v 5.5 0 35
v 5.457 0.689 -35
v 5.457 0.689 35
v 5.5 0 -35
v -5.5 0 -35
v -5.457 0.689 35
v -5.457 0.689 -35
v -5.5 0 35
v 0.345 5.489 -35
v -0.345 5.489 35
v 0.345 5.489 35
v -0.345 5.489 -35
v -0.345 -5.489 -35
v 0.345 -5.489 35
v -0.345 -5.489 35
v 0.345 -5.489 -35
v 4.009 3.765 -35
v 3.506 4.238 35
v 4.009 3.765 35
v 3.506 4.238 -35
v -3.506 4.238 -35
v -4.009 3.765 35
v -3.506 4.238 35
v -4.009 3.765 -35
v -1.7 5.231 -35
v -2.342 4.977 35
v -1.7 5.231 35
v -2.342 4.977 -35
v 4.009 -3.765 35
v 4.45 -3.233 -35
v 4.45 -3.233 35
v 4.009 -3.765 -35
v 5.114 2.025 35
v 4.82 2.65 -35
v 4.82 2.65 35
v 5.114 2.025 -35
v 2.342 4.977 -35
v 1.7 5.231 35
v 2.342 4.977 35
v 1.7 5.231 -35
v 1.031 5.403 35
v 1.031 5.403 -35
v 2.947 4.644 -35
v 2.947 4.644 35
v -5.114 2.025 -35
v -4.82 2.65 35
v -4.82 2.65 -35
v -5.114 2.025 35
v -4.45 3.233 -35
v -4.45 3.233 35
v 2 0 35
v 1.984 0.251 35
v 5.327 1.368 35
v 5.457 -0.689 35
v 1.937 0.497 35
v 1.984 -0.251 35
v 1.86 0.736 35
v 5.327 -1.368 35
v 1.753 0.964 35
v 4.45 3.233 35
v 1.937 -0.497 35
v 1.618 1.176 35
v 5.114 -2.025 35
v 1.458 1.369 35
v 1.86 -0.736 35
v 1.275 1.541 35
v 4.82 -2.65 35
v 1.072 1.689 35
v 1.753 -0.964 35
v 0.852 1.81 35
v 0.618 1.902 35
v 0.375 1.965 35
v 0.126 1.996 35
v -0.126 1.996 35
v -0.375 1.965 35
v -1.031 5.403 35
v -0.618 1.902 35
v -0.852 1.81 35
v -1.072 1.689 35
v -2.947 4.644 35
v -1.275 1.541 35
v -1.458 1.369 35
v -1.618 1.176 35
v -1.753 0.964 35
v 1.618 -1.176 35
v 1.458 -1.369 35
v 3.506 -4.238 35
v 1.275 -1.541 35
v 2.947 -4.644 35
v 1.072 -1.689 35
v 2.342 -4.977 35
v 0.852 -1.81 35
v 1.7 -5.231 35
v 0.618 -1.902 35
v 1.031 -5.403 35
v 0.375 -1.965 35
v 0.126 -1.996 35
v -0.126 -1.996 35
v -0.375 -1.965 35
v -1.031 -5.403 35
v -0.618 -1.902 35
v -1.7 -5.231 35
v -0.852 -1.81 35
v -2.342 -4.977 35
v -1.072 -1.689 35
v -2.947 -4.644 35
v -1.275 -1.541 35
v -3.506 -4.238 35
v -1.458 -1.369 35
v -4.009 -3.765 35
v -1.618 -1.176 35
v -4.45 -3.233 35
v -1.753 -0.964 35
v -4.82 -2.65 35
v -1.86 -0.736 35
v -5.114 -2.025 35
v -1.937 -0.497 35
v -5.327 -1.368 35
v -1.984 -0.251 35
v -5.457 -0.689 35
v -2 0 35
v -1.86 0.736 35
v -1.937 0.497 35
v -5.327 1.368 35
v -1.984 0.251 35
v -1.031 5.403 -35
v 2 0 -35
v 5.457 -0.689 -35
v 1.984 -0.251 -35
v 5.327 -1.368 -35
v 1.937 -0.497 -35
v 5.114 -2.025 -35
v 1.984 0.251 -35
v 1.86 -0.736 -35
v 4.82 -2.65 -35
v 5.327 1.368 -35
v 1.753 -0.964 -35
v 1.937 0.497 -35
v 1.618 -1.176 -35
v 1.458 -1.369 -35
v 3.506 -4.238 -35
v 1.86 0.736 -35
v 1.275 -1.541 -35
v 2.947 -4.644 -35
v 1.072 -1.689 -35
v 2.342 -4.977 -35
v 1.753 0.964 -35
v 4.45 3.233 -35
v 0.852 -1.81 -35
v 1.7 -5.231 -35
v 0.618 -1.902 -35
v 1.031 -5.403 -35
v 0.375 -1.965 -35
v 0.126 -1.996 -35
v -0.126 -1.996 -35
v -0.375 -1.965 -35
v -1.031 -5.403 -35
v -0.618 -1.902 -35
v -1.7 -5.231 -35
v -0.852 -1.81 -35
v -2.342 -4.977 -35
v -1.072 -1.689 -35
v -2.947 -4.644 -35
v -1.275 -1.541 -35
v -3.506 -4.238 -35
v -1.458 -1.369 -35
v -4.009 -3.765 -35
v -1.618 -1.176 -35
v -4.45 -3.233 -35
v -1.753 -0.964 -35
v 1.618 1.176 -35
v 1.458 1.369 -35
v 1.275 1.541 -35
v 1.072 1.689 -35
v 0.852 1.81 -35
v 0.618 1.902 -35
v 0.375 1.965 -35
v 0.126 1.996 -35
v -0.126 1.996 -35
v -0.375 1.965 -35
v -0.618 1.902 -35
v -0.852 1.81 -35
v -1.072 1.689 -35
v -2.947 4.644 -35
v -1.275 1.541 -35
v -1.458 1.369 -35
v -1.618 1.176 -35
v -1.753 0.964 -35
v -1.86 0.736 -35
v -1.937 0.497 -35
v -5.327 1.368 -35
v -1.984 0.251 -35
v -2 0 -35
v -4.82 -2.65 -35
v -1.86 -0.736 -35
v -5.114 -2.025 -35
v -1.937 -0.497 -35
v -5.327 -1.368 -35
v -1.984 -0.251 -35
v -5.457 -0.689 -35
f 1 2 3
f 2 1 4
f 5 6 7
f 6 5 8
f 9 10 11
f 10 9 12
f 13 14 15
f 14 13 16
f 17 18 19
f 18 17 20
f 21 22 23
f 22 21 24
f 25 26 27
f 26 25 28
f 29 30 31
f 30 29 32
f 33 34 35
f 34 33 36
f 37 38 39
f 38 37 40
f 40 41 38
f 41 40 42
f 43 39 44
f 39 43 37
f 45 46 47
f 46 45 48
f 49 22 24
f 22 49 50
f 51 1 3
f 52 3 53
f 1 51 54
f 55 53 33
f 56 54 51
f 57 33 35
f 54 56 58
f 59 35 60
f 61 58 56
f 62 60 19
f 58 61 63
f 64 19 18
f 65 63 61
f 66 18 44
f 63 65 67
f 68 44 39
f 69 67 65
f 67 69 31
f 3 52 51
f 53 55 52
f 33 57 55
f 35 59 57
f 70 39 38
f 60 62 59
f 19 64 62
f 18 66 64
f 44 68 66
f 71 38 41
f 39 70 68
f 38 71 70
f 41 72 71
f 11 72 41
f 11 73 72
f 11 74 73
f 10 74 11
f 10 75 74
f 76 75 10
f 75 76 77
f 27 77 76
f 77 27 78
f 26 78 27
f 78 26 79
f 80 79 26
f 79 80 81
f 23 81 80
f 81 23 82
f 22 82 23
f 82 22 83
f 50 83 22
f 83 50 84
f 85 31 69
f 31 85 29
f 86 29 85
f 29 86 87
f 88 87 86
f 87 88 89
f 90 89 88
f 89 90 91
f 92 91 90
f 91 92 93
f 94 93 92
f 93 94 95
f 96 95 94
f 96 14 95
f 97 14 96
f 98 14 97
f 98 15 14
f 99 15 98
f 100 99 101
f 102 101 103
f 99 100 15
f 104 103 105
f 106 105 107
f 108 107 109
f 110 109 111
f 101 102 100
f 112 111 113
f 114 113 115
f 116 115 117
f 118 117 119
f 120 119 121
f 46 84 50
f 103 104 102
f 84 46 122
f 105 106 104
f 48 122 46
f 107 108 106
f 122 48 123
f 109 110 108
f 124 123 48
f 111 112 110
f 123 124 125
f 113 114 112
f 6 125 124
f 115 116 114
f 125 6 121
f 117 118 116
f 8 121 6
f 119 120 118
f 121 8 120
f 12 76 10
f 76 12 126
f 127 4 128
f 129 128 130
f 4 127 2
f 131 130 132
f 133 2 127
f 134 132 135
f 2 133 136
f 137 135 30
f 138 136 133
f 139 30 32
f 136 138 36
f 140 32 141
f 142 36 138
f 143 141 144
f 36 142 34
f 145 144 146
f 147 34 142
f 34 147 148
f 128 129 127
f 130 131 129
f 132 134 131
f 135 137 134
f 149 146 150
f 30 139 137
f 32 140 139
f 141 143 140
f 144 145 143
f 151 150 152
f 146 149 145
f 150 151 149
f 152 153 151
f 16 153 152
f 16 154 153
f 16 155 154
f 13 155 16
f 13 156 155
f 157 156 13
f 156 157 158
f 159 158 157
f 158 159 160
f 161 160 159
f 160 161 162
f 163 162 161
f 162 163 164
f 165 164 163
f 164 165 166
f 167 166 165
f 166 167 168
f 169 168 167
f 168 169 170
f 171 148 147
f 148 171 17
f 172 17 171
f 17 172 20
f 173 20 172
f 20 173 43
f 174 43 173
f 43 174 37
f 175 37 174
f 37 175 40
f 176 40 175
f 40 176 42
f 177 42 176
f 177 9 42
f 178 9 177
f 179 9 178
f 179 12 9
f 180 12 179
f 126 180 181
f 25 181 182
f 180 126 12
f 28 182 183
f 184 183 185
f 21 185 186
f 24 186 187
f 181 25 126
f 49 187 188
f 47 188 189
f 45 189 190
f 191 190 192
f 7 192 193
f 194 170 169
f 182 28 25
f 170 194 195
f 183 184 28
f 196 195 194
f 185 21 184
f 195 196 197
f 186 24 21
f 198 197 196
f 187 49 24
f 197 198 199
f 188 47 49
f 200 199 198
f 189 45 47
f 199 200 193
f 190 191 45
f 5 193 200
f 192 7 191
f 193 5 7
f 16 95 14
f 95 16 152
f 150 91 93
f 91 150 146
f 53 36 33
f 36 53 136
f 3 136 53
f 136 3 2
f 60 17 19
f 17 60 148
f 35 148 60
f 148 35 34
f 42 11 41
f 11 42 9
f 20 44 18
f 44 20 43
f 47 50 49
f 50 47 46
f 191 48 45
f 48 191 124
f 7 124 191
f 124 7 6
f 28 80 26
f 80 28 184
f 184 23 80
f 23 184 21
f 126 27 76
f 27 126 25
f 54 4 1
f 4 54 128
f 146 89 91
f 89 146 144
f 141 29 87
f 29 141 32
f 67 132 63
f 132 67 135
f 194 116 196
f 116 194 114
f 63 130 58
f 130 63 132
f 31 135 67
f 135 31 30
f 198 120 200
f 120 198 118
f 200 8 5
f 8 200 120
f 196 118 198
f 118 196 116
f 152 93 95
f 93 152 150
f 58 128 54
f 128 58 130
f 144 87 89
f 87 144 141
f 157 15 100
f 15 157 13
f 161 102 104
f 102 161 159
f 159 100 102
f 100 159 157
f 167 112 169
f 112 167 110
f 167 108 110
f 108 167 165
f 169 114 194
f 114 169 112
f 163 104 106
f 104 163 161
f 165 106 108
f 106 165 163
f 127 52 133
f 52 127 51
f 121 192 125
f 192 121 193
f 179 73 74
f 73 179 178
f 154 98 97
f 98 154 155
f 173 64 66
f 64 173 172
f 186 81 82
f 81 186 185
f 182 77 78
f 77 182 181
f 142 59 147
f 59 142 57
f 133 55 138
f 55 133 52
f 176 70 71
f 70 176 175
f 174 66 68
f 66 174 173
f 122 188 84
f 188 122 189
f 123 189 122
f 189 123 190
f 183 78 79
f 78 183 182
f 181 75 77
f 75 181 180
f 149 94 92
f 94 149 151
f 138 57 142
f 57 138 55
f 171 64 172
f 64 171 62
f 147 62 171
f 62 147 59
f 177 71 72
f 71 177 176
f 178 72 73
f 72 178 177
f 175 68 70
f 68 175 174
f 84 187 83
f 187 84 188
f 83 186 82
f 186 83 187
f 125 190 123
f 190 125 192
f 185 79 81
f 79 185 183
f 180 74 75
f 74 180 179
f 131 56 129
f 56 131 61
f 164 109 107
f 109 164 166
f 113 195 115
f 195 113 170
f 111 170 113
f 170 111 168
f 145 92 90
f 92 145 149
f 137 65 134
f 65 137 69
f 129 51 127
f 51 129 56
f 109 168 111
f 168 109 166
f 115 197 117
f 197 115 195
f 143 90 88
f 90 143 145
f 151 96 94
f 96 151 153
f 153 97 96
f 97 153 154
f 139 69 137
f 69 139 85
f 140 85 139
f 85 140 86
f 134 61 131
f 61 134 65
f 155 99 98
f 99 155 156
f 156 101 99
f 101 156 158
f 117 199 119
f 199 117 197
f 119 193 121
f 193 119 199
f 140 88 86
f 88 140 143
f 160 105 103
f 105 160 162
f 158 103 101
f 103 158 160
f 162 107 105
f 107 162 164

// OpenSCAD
$fn = 50;


difference() {
	union() {
		translate(v = [0, 0, -35.0000000000]) {
			cylinder(h = 70, r = 5.5000000000);
		}
	}
	union() {
		translate(v = [0, 0, -100.0000000000]) {
			cylinder(h = 200, r = 2);
		}
	}
}
